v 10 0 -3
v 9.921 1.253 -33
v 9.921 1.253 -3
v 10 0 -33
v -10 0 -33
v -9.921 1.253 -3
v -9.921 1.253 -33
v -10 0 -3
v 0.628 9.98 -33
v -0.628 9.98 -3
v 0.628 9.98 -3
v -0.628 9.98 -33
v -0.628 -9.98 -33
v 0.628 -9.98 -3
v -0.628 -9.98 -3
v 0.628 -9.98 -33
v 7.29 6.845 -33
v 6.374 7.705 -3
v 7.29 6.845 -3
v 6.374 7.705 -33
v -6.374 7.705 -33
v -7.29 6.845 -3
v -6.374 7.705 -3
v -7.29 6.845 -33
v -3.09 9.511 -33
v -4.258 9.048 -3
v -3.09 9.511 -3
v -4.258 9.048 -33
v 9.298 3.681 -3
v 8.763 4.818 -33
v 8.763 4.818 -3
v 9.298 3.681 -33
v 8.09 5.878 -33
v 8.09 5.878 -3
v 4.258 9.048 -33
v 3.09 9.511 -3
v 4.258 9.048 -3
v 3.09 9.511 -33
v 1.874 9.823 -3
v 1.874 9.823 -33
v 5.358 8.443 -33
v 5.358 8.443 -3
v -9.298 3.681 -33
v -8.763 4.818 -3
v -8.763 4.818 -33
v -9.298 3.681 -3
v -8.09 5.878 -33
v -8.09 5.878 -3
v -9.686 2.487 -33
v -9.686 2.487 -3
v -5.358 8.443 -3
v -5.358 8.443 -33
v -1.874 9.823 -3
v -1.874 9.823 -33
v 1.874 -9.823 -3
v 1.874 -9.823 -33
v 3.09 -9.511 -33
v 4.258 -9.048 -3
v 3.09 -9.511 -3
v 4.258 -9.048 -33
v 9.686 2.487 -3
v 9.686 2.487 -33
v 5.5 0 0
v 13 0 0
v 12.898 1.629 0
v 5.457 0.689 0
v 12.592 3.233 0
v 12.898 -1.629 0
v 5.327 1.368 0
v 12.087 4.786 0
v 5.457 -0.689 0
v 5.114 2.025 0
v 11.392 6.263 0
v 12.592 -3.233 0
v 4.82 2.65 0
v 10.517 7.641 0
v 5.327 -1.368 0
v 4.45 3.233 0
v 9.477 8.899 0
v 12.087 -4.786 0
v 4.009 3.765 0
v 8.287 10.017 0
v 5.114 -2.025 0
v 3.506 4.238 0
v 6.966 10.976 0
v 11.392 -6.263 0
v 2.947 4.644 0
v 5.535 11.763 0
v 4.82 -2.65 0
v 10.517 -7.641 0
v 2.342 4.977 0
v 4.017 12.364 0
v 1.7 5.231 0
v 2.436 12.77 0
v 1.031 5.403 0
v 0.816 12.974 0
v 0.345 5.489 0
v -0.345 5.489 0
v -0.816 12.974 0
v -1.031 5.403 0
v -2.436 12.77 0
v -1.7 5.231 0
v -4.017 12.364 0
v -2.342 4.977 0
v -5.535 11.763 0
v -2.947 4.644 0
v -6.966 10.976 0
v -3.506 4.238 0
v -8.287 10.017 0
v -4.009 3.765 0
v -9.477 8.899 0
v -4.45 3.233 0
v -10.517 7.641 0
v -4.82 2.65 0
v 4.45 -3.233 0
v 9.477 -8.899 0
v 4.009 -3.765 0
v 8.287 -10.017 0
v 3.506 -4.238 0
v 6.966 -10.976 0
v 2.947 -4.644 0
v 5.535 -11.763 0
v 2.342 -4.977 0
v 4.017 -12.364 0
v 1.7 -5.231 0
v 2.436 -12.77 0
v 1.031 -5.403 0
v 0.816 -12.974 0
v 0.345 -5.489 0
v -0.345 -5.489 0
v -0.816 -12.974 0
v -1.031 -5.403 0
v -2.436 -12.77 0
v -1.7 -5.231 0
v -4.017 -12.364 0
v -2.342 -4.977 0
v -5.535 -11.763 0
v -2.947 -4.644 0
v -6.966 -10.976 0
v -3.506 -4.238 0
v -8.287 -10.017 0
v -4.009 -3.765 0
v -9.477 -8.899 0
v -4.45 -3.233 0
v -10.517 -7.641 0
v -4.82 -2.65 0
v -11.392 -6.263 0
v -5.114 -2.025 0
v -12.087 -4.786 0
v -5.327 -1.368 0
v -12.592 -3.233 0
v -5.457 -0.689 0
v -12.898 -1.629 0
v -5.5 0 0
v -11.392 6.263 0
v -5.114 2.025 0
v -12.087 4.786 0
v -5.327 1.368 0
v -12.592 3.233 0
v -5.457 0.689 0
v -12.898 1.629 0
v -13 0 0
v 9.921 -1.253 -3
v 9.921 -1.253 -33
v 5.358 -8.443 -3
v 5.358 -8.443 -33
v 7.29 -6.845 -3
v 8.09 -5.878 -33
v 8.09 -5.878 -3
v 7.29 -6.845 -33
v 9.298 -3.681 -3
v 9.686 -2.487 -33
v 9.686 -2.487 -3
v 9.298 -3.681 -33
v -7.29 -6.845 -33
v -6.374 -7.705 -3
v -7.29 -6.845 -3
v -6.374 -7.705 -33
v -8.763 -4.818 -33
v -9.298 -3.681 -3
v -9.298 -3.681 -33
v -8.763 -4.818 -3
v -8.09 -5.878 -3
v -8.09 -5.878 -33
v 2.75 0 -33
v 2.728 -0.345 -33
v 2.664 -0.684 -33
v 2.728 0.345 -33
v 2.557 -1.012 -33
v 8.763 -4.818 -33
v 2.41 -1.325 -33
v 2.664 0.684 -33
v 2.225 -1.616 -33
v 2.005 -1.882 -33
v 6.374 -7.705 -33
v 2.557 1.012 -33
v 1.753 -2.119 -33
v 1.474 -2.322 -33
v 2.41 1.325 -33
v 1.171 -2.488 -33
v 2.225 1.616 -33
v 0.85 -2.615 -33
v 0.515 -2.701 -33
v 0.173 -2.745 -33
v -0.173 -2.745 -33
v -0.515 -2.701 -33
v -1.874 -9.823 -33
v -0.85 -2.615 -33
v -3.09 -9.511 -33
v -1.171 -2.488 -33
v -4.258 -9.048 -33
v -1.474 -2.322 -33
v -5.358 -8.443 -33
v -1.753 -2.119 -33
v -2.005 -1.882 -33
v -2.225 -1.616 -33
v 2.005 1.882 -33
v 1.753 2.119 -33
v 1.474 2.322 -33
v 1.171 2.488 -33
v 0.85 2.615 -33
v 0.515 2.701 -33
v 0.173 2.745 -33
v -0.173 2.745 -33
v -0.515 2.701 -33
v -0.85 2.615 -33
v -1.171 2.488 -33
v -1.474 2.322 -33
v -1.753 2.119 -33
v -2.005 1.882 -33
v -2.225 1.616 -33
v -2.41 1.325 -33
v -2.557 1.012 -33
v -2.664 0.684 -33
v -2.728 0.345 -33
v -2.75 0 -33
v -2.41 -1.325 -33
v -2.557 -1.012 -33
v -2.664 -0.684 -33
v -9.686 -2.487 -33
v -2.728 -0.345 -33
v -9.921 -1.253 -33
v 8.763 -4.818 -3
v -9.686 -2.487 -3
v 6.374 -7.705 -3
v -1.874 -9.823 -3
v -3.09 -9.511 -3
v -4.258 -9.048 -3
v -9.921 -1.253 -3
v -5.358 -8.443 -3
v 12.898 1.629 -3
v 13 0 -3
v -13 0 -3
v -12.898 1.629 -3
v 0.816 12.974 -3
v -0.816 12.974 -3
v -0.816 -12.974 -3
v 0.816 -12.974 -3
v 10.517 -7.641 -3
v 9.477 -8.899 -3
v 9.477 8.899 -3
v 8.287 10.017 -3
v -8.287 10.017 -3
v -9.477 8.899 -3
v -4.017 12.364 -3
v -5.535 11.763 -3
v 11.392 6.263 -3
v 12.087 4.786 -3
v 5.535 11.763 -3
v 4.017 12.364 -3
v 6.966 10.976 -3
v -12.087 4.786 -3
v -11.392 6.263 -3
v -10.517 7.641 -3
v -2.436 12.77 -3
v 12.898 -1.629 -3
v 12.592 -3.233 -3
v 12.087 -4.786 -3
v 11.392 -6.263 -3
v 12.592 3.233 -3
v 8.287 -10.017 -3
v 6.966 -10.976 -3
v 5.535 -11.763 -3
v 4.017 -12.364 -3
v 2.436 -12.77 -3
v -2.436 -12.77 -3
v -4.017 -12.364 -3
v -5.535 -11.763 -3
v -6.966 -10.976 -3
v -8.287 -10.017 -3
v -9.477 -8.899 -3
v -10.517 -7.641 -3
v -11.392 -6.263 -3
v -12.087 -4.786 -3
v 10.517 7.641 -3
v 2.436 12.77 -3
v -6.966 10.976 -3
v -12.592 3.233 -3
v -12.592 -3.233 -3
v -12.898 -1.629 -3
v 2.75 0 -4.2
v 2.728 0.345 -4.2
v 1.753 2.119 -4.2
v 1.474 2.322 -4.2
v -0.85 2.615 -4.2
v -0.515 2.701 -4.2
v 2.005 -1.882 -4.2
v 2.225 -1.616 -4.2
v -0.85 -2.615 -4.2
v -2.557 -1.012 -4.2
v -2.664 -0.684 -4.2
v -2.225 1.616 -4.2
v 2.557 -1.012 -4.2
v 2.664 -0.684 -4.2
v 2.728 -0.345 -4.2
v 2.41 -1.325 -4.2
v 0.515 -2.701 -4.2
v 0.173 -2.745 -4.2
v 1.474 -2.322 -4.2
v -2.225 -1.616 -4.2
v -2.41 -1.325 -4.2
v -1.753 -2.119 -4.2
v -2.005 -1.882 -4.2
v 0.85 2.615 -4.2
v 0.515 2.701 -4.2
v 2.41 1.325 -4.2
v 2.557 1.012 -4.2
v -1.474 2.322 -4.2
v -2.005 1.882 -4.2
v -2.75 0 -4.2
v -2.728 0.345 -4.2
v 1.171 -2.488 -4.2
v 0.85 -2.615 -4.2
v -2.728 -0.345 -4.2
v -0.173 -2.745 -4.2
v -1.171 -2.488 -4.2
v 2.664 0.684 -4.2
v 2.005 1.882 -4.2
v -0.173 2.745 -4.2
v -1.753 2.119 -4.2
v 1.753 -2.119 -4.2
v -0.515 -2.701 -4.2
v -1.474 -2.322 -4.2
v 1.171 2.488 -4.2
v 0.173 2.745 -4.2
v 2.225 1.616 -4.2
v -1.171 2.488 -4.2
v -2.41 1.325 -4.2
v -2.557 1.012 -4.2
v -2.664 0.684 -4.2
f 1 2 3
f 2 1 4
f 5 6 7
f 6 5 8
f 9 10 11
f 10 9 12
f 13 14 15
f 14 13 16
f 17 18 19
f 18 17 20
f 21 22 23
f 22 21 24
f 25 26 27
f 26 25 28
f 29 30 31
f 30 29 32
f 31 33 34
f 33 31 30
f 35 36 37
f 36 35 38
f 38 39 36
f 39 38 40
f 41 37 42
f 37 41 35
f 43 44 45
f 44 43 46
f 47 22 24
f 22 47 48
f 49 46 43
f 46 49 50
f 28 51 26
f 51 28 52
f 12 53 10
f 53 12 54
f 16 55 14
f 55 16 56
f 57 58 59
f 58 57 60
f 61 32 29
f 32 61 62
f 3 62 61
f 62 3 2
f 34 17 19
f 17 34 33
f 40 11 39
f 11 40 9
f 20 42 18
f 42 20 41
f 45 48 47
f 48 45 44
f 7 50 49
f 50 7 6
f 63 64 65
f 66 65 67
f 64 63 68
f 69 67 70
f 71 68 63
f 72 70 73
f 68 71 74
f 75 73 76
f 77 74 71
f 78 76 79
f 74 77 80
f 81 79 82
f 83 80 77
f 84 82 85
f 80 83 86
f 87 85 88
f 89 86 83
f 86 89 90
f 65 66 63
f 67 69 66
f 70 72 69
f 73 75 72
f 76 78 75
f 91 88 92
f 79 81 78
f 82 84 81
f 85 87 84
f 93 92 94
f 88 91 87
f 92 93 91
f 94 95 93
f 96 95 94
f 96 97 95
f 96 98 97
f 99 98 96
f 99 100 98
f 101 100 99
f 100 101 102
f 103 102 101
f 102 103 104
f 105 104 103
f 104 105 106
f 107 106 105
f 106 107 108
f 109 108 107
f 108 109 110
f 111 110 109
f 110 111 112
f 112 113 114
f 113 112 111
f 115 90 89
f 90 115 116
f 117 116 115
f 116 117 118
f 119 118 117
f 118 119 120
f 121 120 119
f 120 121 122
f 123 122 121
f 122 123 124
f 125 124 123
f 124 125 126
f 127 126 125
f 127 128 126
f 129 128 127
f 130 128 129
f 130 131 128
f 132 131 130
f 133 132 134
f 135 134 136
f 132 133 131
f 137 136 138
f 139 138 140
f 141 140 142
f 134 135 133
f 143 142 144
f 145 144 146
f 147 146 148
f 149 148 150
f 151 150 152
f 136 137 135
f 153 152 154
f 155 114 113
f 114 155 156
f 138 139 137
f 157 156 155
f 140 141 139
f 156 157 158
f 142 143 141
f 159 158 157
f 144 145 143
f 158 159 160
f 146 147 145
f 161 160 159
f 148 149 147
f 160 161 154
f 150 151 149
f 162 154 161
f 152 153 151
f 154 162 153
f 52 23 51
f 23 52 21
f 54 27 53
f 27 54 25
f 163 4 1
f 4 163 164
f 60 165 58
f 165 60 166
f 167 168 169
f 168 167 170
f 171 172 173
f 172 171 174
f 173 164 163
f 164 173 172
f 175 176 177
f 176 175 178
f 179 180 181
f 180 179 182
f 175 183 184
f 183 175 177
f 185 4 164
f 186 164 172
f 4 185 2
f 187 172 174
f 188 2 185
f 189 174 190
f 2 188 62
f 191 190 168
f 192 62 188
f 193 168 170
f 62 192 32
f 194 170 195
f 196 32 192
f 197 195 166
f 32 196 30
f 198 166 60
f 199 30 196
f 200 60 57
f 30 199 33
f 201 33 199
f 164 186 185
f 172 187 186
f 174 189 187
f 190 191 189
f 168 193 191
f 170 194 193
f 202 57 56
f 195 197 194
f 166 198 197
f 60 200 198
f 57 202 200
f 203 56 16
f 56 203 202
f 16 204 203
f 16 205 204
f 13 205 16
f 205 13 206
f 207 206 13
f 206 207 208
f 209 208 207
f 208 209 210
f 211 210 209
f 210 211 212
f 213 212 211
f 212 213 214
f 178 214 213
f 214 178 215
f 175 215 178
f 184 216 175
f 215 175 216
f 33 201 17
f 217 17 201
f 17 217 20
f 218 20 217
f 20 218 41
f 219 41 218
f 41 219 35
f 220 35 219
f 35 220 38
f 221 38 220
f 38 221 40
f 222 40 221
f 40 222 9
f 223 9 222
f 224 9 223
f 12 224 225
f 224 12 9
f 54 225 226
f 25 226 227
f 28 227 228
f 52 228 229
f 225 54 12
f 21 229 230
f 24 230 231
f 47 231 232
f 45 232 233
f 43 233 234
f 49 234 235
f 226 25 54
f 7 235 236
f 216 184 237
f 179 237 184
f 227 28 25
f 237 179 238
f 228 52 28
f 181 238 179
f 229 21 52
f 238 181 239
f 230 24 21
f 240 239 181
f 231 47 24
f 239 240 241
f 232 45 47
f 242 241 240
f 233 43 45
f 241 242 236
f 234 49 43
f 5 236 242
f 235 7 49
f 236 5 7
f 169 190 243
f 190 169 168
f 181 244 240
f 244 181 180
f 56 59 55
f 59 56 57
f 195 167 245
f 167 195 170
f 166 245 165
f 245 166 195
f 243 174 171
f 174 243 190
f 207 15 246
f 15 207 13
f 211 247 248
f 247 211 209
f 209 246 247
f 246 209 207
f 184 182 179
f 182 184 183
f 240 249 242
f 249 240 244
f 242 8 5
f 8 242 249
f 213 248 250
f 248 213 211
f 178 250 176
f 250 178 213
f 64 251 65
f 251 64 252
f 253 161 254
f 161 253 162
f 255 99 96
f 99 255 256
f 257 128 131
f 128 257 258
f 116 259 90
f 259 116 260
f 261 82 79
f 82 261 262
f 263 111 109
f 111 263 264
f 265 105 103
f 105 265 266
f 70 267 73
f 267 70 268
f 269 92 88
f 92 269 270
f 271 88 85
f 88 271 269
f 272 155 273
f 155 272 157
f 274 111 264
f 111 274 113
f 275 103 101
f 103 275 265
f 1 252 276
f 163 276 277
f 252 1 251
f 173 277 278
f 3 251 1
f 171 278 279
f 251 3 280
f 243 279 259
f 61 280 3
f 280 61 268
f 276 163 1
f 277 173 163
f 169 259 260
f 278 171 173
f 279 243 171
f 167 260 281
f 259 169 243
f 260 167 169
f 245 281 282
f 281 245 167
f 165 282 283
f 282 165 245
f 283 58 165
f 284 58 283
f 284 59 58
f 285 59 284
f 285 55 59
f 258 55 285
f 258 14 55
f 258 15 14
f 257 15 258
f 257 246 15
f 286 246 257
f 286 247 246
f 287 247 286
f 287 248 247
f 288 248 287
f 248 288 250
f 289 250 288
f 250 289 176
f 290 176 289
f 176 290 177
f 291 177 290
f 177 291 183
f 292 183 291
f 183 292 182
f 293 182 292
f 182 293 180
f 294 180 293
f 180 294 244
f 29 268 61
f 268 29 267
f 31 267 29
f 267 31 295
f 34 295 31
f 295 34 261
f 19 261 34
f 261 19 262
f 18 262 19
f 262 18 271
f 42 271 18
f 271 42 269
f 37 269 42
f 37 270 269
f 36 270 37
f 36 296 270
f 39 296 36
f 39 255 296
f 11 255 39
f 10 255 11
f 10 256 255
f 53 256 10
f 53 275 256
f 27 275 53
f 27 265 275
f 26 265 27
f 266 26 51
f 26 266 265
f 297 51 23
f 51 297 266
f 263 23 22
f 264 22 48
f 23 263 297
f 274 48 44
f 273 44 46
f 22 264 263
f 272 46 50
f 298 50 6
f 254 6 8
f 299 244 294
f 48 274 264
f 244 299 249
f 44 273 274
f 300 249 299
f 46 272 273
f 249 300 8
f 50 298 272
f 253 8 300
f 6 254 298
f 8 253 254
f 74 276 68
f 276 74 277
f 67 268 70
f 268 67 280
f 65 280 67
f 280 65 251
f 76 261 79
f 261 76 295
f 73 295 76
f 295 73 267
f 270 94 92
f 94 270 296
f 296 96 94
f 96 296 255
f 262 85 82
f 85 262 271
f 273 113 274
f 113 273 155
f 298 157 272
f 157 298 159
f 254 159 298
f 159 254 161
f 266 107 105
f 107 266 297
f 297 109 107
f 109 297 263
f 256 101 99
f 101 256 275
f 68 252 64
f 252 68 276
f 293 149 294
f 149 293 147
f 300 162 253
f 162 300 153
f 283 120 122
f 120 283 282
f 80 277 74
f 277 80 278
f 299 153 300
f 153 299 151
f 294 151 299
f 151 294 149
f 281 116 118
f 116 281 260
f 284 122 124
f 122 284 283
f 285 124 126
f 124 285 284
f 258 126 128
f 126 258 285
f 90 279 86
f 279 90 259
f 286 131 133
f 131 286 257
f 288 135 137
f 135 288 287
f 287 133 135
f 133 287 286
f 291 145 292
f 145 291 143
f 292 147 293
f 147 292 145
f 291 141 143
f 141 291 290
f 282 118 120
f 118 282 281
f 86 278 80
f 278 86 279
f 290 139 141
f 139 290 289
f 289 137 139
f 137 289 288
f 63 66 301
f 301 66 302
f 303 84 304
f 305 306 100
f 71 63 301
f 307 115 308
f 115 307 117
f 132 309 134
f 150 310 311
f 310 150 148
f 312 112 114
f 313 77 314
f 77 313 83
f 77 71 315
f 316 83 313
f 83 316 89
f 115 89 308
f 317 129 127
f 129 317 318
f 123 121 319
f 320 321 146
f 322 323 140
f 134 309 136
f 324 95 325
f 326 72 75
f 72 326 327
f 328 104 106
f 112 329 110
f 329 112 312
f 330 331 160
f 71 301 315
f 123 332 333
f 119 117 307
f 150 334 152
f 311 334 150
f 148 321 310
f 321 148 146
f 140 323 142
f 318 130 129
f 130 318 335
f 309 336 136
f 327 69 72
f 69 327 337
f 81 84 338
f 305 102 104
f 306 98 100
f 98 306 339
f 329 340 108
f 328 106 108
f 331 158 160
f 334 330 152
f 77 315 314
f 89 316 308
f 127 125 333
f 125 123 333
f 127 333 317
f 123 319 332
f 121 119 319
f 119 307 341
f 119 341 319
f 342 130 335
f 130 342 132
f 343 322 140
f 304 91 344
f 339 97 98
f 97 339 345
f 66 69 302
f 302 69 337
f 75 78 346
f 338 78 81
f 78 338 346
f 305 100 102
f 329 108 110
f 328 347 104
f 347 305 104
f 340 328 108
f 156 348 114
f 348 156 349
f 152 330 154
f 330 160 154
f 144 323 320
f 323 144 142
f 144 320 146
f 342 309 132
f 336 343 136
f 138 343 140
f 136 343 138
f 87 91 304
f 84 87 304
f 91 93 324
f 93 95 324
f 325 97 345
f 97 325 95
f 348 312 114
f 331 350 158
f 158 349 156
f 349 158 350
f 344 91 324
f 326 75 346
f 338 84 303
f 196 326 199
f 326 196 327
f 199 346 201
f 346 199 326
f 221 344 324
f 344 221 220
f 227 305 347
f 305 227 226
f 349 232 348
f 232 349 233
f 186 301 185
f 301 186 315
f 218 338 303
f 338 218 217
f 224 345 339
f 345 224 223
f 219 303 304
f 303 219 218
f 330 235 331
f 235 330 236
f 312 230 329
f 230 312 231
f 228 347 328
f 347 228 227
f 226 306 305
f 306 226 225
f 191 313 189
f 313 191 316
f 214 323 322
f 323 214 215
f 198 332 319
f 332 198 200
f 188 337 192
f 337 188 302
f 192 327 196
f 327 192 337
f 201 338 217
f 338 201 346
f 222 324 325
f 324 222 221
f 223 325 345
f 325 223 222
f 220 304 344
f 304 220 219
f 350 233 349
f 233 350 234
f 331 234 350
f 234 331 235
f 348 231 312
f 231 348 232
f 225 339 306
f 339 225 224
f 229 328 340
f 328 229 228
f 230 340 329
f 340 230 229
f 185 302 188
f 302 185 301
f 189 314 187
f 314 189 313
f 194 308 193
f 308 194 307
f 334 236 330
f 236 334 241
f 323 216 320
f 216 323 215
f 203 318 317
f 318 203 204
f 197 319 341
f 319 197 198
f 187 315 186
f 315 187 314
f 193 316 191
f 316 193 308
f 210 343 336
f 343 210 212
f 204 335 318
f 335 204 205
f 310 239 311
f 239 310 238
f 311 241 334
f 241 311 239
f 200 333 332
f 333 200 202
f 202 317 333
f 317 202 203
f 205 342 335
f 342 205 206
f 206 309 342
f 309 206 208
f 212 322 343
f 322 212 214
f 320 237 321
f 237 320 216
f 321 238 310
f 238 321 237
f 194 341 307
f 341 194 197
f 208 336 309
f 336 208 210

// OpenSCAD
$fn = 50;


difference() {
	union() {
		translate(v = [0, 0, -33.0000000000]) {
			cylinder(h = 33, r = 10.0000000000);
		}
		translate(v = [0, 0, -3.0000000000]) {
			cylinder(h = 3, r = 13.0000000000);
		}
	}
	union() {
		translate(v = [0, 0, 0]) {
			rotate(a = [0, 0, 0]) {
				difference() {
					union() {
						#translate(v = [0, 0, -33.0000000000]) {
							cylinder(h = 33, r = 2.2500000000);
						}
						#translate(v = [0, 0, -4.2000000000]) {
							cylinder(h = 4.2000000000, r1 = 2.7500000000, r2 = 5.5000000000);
						}
						#translate(v = [0, 0, -33.0000000000]) {
							cylinder(h = 33, r = 2.7500000000);
						}
						#translate(v = [0, 0, -33.0000000000]) {
							cylinder(h = 33, r = 2.2500000000);
						}
					}
					union();
				}
			}
		}
	}
}
